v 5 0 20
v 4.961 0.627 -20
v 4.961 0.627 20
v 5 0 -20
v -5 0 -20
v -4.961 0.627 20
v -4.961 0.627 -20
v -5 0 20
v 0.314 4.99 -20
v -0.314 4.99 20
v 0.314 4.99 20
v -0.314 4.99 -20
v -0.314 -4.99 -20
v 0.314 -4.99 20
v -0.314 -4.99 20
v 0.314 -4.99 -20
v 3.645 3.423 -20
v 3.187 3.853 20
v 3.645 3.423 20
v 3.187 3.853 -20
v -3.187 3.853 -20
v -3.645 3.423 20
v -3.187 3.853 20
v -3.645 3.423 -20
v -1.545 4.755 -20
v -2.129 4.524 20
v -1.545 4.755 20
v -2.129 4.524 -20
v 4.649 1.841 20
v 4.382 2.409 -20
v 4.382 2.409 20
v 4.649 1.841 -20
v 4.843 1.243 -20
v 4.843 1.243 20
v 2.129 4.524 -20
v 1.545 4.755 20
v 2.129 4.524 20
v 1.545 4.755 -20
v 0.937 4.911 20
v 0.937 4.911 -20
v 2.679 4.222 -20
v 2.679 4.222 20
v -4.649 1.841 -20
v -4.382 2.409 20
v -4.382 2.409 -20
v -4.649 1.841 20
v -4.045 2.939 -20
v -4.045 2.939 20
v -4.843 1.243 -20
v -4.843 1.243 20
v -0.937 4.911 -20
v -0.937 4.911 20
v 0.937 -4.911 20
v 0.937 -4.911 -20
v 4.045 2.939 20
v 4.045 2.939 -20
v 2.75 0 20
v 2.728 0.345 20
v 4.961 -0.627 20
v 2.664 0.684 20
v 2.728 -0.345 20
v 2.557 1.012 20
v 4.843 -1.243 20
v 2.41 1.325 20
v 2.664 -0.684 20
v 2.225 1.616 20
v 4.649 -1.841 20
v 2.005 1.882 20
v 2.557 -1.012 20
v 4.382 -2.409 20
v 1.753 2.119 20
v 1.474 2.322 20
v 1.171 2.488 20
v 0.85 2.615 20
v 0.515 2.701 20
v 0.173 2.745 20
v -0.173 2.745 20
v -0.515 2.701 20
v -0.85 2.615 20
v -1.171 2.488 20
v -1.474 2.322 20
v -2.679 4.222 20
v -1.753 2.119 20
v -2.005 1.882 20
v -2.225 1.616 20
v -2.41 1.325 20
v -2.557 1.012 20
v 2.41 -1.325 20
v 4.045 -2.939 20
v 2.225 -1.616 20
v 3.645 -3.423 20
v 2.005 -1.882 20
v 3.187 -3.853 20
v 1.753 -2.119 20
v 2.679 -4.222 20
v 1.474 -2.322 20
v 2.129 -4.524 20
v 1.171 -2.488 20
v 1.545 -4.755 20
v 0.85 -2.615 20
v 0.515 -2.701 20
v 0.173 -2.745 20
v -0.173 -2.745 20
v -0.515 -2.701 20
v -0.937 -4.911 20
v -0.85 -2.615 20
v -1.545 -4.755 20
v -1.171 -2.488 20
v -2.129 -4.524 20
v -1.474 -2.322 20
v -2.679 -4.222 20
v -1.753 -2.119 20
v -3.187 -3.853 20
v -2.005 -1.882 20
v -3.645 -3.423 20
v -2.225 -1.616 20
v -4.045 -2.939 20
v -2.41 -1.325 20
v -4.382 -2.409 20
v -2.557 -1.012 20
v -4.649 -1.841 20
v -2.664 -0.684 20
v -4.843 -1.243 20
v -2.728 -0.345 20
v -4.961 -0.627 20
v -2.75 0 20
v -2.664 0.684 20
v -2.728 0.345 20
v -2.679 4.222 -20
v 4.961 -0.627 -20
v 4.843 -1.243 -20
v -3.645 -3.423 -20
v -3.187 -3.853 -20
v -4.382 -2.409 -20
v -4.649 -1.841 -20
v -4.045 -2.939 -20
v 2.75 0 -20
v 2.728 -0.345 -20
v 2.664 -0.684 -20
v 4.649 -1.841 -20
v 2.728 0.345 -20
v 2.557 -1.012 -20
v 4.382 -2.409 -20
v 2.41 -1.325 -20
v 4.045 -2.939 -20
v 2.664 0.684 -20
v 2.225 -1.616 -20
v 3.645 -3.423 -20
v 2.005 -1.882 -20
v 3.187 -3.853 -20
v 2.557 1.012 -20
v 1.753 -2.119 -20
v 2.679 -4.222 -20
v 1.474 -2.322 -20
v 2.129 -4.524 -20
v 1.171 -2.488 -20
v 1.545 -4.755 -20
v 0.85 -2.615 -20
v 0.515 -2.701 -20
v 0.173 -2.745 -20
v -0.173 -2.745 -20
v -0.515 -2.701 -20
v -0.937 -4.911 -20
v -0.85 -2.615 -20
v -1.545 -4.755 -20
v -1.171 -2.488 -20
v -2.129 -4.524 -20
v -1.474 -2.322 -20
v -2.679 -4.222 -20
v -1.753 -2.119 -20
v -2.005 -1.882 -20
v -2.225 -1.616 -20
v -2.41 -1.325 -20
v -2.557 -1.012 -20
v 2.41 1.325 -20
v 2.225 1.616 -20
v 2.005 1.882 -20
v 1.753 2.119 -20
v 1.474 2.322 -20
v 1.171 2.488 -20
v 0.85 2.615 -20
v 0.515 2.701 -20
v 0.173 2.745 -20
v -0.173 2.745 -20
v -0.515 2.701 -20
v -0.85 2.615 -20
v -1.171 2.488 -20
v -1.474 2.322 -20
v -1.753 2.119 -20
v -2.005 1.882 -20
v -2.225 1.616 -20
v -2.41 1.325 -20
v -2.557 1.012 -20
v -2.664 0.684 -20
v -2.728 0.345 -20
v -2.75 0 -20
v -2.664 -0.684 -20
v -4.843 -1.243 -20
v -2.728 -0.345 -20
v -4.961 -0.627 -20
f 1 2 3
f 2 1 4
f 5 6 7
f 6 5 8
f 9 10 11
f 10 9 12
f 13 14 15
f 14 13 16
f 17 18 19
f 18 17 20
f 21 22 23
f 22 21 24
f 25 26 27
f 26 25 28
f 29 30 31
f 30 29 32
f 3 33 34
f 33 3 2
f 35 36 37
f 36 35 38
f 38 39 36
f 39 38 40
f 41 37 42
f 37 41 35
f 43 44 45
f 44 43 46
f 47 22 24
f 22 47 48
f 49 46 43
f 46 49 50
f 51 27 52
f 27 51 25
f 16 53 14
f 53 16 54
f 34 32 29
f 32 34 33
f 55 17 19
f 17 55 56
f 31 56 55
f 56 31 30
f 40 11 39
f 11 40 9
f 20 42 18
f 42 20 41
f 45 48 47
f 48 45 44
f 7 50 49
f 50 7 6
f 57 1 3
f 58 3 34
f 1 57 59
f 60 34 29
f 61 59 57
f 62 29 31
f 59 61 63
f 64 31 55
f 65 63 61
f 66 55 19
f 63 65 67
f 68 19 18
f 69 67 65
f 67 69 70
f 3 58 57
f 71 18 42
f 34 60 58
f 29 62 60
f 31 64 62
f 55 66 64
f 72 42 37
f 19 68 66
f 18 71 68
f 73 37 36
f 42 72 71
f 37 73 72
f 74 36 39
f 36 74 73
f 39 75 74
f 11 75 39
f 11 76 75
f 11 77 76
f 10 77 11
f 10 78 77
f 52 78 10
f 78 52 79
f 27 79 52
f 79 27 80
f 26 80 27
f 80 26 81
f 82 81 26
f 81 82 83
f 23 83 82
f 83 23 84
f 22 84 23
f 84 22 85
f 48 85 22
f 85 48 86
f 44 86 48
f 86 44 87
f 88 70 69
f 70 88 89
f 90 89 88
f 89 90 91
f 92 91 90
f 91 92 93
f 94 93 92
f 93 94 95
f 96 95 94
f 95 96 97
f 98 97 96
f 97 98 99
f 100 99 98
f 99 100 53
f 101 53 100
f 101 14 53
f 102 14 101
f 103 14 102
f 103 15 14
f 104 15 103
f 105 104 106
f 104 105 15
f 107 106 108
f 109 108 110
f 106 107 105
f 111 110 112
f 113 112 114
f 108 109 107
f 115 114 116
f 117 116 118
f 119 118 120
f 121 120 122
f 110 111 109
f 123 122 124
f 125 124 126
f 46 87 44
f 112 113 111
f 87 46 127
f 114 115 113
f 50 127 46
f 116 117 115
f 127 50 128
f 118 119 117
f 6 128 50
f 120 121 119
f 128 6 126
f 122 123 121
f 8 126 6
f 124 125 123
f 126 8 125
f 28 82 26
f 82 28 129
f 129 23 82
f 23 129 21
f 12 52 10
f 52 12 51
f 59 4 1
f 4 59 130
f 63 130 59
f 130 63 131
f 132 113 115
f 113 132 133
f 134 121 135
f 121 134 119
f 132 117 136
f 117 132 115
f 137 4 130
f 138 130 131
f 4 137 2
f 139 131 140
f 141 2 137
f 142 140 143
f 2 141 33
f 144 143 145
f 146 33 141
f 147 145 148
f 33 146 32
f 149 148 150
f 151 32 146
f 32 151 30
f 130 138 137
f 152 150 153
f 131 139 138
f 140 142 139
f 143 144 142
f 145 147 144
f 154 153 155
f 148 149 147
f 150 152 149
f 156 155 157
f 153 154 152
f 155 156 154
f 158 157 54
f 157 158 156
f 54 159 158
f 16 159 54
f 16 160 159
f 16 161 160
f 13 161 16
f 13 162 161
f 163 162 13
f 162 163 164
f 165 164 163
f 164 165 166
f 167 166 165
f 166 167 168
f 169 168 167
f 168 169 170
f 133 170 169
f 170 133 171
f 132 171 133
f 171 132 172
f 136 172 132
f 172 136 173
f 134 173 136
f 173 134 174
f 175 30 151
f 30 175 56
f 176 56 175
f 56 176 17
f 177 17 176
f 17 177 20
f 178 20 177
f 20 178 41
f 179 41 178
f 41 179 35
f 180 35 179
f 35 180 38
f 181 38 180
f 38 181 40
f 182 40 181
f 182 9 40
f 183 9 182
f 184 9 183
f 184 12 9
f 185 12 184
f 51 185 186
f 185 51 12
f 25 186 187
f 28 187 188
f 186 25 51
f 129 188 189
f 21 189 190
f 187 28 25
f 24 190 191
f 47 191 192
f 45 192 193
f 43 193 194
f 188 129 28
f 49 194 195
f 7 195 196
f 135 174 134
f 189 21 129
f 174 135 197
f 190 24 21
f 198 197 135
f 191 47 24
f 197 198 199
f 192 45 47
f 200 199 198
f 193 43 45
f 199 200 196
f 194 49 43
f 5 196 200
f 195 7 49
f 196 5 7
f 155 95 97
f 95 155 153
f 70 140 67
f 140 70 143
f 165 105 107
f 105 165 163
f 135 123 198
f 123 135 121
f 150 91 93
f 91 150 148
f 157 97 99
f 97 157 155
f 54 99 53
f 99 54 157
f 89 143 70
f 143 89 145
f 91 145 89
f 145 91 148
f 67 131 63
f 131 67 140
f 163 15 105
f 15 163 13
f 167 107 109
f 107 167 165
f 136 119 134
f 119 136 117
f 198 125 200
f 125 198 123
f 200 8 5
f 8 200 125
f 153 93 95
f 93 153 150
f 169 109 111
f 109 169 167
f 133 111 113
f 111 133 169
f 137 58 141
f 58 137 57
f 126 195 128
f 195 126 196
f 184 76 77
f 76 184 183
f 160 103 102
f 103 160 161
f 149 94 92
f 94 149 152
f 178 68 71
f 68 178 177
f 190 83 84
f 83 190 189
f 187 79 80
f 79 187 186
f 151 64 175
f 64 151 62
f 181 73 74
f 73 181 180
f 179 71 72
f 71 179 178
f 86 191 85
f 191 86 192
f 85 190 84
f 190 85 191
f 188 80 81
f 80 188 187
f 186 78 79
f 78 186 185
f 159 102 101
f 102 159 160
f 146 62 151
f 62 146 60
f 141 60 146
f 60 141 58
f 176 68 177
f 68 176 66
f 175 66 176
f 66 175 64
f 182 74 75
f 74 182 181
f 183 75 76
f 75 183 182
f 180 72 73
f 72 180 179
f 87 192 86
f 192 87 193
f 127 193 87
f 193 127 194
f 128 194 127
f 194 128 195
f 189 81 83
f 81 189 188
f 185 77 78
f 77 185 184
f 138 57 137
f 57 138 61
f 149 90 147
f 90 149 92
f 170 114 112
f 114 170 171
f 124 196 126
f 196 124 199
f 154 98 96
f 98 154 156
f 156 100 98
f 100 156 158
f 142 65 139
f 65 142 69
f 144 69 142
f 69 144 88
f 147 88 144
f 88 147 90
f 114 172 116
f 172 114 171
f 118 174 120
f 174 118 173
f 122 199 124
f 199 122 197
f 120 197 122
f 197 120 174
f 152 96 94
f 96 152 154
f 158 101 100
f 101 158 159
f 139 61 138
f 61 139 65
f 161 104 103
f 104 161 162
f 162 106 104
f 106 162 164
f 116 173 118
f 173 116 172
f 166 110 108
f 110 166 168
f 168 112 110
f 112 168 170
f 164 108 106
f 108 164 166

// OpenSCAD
$fn = 50;


difference() {
	union() {
		translate(v = [0, 0, -20.0000000000]) {
			cylinder(h = 40, r = 5.0000000000);
		}
	}
	union() {
		translate(v = [0, 0, -100.0000000000]) {
			cylinder(h = 200, r = 2.7500000000);
		}
	}
}
